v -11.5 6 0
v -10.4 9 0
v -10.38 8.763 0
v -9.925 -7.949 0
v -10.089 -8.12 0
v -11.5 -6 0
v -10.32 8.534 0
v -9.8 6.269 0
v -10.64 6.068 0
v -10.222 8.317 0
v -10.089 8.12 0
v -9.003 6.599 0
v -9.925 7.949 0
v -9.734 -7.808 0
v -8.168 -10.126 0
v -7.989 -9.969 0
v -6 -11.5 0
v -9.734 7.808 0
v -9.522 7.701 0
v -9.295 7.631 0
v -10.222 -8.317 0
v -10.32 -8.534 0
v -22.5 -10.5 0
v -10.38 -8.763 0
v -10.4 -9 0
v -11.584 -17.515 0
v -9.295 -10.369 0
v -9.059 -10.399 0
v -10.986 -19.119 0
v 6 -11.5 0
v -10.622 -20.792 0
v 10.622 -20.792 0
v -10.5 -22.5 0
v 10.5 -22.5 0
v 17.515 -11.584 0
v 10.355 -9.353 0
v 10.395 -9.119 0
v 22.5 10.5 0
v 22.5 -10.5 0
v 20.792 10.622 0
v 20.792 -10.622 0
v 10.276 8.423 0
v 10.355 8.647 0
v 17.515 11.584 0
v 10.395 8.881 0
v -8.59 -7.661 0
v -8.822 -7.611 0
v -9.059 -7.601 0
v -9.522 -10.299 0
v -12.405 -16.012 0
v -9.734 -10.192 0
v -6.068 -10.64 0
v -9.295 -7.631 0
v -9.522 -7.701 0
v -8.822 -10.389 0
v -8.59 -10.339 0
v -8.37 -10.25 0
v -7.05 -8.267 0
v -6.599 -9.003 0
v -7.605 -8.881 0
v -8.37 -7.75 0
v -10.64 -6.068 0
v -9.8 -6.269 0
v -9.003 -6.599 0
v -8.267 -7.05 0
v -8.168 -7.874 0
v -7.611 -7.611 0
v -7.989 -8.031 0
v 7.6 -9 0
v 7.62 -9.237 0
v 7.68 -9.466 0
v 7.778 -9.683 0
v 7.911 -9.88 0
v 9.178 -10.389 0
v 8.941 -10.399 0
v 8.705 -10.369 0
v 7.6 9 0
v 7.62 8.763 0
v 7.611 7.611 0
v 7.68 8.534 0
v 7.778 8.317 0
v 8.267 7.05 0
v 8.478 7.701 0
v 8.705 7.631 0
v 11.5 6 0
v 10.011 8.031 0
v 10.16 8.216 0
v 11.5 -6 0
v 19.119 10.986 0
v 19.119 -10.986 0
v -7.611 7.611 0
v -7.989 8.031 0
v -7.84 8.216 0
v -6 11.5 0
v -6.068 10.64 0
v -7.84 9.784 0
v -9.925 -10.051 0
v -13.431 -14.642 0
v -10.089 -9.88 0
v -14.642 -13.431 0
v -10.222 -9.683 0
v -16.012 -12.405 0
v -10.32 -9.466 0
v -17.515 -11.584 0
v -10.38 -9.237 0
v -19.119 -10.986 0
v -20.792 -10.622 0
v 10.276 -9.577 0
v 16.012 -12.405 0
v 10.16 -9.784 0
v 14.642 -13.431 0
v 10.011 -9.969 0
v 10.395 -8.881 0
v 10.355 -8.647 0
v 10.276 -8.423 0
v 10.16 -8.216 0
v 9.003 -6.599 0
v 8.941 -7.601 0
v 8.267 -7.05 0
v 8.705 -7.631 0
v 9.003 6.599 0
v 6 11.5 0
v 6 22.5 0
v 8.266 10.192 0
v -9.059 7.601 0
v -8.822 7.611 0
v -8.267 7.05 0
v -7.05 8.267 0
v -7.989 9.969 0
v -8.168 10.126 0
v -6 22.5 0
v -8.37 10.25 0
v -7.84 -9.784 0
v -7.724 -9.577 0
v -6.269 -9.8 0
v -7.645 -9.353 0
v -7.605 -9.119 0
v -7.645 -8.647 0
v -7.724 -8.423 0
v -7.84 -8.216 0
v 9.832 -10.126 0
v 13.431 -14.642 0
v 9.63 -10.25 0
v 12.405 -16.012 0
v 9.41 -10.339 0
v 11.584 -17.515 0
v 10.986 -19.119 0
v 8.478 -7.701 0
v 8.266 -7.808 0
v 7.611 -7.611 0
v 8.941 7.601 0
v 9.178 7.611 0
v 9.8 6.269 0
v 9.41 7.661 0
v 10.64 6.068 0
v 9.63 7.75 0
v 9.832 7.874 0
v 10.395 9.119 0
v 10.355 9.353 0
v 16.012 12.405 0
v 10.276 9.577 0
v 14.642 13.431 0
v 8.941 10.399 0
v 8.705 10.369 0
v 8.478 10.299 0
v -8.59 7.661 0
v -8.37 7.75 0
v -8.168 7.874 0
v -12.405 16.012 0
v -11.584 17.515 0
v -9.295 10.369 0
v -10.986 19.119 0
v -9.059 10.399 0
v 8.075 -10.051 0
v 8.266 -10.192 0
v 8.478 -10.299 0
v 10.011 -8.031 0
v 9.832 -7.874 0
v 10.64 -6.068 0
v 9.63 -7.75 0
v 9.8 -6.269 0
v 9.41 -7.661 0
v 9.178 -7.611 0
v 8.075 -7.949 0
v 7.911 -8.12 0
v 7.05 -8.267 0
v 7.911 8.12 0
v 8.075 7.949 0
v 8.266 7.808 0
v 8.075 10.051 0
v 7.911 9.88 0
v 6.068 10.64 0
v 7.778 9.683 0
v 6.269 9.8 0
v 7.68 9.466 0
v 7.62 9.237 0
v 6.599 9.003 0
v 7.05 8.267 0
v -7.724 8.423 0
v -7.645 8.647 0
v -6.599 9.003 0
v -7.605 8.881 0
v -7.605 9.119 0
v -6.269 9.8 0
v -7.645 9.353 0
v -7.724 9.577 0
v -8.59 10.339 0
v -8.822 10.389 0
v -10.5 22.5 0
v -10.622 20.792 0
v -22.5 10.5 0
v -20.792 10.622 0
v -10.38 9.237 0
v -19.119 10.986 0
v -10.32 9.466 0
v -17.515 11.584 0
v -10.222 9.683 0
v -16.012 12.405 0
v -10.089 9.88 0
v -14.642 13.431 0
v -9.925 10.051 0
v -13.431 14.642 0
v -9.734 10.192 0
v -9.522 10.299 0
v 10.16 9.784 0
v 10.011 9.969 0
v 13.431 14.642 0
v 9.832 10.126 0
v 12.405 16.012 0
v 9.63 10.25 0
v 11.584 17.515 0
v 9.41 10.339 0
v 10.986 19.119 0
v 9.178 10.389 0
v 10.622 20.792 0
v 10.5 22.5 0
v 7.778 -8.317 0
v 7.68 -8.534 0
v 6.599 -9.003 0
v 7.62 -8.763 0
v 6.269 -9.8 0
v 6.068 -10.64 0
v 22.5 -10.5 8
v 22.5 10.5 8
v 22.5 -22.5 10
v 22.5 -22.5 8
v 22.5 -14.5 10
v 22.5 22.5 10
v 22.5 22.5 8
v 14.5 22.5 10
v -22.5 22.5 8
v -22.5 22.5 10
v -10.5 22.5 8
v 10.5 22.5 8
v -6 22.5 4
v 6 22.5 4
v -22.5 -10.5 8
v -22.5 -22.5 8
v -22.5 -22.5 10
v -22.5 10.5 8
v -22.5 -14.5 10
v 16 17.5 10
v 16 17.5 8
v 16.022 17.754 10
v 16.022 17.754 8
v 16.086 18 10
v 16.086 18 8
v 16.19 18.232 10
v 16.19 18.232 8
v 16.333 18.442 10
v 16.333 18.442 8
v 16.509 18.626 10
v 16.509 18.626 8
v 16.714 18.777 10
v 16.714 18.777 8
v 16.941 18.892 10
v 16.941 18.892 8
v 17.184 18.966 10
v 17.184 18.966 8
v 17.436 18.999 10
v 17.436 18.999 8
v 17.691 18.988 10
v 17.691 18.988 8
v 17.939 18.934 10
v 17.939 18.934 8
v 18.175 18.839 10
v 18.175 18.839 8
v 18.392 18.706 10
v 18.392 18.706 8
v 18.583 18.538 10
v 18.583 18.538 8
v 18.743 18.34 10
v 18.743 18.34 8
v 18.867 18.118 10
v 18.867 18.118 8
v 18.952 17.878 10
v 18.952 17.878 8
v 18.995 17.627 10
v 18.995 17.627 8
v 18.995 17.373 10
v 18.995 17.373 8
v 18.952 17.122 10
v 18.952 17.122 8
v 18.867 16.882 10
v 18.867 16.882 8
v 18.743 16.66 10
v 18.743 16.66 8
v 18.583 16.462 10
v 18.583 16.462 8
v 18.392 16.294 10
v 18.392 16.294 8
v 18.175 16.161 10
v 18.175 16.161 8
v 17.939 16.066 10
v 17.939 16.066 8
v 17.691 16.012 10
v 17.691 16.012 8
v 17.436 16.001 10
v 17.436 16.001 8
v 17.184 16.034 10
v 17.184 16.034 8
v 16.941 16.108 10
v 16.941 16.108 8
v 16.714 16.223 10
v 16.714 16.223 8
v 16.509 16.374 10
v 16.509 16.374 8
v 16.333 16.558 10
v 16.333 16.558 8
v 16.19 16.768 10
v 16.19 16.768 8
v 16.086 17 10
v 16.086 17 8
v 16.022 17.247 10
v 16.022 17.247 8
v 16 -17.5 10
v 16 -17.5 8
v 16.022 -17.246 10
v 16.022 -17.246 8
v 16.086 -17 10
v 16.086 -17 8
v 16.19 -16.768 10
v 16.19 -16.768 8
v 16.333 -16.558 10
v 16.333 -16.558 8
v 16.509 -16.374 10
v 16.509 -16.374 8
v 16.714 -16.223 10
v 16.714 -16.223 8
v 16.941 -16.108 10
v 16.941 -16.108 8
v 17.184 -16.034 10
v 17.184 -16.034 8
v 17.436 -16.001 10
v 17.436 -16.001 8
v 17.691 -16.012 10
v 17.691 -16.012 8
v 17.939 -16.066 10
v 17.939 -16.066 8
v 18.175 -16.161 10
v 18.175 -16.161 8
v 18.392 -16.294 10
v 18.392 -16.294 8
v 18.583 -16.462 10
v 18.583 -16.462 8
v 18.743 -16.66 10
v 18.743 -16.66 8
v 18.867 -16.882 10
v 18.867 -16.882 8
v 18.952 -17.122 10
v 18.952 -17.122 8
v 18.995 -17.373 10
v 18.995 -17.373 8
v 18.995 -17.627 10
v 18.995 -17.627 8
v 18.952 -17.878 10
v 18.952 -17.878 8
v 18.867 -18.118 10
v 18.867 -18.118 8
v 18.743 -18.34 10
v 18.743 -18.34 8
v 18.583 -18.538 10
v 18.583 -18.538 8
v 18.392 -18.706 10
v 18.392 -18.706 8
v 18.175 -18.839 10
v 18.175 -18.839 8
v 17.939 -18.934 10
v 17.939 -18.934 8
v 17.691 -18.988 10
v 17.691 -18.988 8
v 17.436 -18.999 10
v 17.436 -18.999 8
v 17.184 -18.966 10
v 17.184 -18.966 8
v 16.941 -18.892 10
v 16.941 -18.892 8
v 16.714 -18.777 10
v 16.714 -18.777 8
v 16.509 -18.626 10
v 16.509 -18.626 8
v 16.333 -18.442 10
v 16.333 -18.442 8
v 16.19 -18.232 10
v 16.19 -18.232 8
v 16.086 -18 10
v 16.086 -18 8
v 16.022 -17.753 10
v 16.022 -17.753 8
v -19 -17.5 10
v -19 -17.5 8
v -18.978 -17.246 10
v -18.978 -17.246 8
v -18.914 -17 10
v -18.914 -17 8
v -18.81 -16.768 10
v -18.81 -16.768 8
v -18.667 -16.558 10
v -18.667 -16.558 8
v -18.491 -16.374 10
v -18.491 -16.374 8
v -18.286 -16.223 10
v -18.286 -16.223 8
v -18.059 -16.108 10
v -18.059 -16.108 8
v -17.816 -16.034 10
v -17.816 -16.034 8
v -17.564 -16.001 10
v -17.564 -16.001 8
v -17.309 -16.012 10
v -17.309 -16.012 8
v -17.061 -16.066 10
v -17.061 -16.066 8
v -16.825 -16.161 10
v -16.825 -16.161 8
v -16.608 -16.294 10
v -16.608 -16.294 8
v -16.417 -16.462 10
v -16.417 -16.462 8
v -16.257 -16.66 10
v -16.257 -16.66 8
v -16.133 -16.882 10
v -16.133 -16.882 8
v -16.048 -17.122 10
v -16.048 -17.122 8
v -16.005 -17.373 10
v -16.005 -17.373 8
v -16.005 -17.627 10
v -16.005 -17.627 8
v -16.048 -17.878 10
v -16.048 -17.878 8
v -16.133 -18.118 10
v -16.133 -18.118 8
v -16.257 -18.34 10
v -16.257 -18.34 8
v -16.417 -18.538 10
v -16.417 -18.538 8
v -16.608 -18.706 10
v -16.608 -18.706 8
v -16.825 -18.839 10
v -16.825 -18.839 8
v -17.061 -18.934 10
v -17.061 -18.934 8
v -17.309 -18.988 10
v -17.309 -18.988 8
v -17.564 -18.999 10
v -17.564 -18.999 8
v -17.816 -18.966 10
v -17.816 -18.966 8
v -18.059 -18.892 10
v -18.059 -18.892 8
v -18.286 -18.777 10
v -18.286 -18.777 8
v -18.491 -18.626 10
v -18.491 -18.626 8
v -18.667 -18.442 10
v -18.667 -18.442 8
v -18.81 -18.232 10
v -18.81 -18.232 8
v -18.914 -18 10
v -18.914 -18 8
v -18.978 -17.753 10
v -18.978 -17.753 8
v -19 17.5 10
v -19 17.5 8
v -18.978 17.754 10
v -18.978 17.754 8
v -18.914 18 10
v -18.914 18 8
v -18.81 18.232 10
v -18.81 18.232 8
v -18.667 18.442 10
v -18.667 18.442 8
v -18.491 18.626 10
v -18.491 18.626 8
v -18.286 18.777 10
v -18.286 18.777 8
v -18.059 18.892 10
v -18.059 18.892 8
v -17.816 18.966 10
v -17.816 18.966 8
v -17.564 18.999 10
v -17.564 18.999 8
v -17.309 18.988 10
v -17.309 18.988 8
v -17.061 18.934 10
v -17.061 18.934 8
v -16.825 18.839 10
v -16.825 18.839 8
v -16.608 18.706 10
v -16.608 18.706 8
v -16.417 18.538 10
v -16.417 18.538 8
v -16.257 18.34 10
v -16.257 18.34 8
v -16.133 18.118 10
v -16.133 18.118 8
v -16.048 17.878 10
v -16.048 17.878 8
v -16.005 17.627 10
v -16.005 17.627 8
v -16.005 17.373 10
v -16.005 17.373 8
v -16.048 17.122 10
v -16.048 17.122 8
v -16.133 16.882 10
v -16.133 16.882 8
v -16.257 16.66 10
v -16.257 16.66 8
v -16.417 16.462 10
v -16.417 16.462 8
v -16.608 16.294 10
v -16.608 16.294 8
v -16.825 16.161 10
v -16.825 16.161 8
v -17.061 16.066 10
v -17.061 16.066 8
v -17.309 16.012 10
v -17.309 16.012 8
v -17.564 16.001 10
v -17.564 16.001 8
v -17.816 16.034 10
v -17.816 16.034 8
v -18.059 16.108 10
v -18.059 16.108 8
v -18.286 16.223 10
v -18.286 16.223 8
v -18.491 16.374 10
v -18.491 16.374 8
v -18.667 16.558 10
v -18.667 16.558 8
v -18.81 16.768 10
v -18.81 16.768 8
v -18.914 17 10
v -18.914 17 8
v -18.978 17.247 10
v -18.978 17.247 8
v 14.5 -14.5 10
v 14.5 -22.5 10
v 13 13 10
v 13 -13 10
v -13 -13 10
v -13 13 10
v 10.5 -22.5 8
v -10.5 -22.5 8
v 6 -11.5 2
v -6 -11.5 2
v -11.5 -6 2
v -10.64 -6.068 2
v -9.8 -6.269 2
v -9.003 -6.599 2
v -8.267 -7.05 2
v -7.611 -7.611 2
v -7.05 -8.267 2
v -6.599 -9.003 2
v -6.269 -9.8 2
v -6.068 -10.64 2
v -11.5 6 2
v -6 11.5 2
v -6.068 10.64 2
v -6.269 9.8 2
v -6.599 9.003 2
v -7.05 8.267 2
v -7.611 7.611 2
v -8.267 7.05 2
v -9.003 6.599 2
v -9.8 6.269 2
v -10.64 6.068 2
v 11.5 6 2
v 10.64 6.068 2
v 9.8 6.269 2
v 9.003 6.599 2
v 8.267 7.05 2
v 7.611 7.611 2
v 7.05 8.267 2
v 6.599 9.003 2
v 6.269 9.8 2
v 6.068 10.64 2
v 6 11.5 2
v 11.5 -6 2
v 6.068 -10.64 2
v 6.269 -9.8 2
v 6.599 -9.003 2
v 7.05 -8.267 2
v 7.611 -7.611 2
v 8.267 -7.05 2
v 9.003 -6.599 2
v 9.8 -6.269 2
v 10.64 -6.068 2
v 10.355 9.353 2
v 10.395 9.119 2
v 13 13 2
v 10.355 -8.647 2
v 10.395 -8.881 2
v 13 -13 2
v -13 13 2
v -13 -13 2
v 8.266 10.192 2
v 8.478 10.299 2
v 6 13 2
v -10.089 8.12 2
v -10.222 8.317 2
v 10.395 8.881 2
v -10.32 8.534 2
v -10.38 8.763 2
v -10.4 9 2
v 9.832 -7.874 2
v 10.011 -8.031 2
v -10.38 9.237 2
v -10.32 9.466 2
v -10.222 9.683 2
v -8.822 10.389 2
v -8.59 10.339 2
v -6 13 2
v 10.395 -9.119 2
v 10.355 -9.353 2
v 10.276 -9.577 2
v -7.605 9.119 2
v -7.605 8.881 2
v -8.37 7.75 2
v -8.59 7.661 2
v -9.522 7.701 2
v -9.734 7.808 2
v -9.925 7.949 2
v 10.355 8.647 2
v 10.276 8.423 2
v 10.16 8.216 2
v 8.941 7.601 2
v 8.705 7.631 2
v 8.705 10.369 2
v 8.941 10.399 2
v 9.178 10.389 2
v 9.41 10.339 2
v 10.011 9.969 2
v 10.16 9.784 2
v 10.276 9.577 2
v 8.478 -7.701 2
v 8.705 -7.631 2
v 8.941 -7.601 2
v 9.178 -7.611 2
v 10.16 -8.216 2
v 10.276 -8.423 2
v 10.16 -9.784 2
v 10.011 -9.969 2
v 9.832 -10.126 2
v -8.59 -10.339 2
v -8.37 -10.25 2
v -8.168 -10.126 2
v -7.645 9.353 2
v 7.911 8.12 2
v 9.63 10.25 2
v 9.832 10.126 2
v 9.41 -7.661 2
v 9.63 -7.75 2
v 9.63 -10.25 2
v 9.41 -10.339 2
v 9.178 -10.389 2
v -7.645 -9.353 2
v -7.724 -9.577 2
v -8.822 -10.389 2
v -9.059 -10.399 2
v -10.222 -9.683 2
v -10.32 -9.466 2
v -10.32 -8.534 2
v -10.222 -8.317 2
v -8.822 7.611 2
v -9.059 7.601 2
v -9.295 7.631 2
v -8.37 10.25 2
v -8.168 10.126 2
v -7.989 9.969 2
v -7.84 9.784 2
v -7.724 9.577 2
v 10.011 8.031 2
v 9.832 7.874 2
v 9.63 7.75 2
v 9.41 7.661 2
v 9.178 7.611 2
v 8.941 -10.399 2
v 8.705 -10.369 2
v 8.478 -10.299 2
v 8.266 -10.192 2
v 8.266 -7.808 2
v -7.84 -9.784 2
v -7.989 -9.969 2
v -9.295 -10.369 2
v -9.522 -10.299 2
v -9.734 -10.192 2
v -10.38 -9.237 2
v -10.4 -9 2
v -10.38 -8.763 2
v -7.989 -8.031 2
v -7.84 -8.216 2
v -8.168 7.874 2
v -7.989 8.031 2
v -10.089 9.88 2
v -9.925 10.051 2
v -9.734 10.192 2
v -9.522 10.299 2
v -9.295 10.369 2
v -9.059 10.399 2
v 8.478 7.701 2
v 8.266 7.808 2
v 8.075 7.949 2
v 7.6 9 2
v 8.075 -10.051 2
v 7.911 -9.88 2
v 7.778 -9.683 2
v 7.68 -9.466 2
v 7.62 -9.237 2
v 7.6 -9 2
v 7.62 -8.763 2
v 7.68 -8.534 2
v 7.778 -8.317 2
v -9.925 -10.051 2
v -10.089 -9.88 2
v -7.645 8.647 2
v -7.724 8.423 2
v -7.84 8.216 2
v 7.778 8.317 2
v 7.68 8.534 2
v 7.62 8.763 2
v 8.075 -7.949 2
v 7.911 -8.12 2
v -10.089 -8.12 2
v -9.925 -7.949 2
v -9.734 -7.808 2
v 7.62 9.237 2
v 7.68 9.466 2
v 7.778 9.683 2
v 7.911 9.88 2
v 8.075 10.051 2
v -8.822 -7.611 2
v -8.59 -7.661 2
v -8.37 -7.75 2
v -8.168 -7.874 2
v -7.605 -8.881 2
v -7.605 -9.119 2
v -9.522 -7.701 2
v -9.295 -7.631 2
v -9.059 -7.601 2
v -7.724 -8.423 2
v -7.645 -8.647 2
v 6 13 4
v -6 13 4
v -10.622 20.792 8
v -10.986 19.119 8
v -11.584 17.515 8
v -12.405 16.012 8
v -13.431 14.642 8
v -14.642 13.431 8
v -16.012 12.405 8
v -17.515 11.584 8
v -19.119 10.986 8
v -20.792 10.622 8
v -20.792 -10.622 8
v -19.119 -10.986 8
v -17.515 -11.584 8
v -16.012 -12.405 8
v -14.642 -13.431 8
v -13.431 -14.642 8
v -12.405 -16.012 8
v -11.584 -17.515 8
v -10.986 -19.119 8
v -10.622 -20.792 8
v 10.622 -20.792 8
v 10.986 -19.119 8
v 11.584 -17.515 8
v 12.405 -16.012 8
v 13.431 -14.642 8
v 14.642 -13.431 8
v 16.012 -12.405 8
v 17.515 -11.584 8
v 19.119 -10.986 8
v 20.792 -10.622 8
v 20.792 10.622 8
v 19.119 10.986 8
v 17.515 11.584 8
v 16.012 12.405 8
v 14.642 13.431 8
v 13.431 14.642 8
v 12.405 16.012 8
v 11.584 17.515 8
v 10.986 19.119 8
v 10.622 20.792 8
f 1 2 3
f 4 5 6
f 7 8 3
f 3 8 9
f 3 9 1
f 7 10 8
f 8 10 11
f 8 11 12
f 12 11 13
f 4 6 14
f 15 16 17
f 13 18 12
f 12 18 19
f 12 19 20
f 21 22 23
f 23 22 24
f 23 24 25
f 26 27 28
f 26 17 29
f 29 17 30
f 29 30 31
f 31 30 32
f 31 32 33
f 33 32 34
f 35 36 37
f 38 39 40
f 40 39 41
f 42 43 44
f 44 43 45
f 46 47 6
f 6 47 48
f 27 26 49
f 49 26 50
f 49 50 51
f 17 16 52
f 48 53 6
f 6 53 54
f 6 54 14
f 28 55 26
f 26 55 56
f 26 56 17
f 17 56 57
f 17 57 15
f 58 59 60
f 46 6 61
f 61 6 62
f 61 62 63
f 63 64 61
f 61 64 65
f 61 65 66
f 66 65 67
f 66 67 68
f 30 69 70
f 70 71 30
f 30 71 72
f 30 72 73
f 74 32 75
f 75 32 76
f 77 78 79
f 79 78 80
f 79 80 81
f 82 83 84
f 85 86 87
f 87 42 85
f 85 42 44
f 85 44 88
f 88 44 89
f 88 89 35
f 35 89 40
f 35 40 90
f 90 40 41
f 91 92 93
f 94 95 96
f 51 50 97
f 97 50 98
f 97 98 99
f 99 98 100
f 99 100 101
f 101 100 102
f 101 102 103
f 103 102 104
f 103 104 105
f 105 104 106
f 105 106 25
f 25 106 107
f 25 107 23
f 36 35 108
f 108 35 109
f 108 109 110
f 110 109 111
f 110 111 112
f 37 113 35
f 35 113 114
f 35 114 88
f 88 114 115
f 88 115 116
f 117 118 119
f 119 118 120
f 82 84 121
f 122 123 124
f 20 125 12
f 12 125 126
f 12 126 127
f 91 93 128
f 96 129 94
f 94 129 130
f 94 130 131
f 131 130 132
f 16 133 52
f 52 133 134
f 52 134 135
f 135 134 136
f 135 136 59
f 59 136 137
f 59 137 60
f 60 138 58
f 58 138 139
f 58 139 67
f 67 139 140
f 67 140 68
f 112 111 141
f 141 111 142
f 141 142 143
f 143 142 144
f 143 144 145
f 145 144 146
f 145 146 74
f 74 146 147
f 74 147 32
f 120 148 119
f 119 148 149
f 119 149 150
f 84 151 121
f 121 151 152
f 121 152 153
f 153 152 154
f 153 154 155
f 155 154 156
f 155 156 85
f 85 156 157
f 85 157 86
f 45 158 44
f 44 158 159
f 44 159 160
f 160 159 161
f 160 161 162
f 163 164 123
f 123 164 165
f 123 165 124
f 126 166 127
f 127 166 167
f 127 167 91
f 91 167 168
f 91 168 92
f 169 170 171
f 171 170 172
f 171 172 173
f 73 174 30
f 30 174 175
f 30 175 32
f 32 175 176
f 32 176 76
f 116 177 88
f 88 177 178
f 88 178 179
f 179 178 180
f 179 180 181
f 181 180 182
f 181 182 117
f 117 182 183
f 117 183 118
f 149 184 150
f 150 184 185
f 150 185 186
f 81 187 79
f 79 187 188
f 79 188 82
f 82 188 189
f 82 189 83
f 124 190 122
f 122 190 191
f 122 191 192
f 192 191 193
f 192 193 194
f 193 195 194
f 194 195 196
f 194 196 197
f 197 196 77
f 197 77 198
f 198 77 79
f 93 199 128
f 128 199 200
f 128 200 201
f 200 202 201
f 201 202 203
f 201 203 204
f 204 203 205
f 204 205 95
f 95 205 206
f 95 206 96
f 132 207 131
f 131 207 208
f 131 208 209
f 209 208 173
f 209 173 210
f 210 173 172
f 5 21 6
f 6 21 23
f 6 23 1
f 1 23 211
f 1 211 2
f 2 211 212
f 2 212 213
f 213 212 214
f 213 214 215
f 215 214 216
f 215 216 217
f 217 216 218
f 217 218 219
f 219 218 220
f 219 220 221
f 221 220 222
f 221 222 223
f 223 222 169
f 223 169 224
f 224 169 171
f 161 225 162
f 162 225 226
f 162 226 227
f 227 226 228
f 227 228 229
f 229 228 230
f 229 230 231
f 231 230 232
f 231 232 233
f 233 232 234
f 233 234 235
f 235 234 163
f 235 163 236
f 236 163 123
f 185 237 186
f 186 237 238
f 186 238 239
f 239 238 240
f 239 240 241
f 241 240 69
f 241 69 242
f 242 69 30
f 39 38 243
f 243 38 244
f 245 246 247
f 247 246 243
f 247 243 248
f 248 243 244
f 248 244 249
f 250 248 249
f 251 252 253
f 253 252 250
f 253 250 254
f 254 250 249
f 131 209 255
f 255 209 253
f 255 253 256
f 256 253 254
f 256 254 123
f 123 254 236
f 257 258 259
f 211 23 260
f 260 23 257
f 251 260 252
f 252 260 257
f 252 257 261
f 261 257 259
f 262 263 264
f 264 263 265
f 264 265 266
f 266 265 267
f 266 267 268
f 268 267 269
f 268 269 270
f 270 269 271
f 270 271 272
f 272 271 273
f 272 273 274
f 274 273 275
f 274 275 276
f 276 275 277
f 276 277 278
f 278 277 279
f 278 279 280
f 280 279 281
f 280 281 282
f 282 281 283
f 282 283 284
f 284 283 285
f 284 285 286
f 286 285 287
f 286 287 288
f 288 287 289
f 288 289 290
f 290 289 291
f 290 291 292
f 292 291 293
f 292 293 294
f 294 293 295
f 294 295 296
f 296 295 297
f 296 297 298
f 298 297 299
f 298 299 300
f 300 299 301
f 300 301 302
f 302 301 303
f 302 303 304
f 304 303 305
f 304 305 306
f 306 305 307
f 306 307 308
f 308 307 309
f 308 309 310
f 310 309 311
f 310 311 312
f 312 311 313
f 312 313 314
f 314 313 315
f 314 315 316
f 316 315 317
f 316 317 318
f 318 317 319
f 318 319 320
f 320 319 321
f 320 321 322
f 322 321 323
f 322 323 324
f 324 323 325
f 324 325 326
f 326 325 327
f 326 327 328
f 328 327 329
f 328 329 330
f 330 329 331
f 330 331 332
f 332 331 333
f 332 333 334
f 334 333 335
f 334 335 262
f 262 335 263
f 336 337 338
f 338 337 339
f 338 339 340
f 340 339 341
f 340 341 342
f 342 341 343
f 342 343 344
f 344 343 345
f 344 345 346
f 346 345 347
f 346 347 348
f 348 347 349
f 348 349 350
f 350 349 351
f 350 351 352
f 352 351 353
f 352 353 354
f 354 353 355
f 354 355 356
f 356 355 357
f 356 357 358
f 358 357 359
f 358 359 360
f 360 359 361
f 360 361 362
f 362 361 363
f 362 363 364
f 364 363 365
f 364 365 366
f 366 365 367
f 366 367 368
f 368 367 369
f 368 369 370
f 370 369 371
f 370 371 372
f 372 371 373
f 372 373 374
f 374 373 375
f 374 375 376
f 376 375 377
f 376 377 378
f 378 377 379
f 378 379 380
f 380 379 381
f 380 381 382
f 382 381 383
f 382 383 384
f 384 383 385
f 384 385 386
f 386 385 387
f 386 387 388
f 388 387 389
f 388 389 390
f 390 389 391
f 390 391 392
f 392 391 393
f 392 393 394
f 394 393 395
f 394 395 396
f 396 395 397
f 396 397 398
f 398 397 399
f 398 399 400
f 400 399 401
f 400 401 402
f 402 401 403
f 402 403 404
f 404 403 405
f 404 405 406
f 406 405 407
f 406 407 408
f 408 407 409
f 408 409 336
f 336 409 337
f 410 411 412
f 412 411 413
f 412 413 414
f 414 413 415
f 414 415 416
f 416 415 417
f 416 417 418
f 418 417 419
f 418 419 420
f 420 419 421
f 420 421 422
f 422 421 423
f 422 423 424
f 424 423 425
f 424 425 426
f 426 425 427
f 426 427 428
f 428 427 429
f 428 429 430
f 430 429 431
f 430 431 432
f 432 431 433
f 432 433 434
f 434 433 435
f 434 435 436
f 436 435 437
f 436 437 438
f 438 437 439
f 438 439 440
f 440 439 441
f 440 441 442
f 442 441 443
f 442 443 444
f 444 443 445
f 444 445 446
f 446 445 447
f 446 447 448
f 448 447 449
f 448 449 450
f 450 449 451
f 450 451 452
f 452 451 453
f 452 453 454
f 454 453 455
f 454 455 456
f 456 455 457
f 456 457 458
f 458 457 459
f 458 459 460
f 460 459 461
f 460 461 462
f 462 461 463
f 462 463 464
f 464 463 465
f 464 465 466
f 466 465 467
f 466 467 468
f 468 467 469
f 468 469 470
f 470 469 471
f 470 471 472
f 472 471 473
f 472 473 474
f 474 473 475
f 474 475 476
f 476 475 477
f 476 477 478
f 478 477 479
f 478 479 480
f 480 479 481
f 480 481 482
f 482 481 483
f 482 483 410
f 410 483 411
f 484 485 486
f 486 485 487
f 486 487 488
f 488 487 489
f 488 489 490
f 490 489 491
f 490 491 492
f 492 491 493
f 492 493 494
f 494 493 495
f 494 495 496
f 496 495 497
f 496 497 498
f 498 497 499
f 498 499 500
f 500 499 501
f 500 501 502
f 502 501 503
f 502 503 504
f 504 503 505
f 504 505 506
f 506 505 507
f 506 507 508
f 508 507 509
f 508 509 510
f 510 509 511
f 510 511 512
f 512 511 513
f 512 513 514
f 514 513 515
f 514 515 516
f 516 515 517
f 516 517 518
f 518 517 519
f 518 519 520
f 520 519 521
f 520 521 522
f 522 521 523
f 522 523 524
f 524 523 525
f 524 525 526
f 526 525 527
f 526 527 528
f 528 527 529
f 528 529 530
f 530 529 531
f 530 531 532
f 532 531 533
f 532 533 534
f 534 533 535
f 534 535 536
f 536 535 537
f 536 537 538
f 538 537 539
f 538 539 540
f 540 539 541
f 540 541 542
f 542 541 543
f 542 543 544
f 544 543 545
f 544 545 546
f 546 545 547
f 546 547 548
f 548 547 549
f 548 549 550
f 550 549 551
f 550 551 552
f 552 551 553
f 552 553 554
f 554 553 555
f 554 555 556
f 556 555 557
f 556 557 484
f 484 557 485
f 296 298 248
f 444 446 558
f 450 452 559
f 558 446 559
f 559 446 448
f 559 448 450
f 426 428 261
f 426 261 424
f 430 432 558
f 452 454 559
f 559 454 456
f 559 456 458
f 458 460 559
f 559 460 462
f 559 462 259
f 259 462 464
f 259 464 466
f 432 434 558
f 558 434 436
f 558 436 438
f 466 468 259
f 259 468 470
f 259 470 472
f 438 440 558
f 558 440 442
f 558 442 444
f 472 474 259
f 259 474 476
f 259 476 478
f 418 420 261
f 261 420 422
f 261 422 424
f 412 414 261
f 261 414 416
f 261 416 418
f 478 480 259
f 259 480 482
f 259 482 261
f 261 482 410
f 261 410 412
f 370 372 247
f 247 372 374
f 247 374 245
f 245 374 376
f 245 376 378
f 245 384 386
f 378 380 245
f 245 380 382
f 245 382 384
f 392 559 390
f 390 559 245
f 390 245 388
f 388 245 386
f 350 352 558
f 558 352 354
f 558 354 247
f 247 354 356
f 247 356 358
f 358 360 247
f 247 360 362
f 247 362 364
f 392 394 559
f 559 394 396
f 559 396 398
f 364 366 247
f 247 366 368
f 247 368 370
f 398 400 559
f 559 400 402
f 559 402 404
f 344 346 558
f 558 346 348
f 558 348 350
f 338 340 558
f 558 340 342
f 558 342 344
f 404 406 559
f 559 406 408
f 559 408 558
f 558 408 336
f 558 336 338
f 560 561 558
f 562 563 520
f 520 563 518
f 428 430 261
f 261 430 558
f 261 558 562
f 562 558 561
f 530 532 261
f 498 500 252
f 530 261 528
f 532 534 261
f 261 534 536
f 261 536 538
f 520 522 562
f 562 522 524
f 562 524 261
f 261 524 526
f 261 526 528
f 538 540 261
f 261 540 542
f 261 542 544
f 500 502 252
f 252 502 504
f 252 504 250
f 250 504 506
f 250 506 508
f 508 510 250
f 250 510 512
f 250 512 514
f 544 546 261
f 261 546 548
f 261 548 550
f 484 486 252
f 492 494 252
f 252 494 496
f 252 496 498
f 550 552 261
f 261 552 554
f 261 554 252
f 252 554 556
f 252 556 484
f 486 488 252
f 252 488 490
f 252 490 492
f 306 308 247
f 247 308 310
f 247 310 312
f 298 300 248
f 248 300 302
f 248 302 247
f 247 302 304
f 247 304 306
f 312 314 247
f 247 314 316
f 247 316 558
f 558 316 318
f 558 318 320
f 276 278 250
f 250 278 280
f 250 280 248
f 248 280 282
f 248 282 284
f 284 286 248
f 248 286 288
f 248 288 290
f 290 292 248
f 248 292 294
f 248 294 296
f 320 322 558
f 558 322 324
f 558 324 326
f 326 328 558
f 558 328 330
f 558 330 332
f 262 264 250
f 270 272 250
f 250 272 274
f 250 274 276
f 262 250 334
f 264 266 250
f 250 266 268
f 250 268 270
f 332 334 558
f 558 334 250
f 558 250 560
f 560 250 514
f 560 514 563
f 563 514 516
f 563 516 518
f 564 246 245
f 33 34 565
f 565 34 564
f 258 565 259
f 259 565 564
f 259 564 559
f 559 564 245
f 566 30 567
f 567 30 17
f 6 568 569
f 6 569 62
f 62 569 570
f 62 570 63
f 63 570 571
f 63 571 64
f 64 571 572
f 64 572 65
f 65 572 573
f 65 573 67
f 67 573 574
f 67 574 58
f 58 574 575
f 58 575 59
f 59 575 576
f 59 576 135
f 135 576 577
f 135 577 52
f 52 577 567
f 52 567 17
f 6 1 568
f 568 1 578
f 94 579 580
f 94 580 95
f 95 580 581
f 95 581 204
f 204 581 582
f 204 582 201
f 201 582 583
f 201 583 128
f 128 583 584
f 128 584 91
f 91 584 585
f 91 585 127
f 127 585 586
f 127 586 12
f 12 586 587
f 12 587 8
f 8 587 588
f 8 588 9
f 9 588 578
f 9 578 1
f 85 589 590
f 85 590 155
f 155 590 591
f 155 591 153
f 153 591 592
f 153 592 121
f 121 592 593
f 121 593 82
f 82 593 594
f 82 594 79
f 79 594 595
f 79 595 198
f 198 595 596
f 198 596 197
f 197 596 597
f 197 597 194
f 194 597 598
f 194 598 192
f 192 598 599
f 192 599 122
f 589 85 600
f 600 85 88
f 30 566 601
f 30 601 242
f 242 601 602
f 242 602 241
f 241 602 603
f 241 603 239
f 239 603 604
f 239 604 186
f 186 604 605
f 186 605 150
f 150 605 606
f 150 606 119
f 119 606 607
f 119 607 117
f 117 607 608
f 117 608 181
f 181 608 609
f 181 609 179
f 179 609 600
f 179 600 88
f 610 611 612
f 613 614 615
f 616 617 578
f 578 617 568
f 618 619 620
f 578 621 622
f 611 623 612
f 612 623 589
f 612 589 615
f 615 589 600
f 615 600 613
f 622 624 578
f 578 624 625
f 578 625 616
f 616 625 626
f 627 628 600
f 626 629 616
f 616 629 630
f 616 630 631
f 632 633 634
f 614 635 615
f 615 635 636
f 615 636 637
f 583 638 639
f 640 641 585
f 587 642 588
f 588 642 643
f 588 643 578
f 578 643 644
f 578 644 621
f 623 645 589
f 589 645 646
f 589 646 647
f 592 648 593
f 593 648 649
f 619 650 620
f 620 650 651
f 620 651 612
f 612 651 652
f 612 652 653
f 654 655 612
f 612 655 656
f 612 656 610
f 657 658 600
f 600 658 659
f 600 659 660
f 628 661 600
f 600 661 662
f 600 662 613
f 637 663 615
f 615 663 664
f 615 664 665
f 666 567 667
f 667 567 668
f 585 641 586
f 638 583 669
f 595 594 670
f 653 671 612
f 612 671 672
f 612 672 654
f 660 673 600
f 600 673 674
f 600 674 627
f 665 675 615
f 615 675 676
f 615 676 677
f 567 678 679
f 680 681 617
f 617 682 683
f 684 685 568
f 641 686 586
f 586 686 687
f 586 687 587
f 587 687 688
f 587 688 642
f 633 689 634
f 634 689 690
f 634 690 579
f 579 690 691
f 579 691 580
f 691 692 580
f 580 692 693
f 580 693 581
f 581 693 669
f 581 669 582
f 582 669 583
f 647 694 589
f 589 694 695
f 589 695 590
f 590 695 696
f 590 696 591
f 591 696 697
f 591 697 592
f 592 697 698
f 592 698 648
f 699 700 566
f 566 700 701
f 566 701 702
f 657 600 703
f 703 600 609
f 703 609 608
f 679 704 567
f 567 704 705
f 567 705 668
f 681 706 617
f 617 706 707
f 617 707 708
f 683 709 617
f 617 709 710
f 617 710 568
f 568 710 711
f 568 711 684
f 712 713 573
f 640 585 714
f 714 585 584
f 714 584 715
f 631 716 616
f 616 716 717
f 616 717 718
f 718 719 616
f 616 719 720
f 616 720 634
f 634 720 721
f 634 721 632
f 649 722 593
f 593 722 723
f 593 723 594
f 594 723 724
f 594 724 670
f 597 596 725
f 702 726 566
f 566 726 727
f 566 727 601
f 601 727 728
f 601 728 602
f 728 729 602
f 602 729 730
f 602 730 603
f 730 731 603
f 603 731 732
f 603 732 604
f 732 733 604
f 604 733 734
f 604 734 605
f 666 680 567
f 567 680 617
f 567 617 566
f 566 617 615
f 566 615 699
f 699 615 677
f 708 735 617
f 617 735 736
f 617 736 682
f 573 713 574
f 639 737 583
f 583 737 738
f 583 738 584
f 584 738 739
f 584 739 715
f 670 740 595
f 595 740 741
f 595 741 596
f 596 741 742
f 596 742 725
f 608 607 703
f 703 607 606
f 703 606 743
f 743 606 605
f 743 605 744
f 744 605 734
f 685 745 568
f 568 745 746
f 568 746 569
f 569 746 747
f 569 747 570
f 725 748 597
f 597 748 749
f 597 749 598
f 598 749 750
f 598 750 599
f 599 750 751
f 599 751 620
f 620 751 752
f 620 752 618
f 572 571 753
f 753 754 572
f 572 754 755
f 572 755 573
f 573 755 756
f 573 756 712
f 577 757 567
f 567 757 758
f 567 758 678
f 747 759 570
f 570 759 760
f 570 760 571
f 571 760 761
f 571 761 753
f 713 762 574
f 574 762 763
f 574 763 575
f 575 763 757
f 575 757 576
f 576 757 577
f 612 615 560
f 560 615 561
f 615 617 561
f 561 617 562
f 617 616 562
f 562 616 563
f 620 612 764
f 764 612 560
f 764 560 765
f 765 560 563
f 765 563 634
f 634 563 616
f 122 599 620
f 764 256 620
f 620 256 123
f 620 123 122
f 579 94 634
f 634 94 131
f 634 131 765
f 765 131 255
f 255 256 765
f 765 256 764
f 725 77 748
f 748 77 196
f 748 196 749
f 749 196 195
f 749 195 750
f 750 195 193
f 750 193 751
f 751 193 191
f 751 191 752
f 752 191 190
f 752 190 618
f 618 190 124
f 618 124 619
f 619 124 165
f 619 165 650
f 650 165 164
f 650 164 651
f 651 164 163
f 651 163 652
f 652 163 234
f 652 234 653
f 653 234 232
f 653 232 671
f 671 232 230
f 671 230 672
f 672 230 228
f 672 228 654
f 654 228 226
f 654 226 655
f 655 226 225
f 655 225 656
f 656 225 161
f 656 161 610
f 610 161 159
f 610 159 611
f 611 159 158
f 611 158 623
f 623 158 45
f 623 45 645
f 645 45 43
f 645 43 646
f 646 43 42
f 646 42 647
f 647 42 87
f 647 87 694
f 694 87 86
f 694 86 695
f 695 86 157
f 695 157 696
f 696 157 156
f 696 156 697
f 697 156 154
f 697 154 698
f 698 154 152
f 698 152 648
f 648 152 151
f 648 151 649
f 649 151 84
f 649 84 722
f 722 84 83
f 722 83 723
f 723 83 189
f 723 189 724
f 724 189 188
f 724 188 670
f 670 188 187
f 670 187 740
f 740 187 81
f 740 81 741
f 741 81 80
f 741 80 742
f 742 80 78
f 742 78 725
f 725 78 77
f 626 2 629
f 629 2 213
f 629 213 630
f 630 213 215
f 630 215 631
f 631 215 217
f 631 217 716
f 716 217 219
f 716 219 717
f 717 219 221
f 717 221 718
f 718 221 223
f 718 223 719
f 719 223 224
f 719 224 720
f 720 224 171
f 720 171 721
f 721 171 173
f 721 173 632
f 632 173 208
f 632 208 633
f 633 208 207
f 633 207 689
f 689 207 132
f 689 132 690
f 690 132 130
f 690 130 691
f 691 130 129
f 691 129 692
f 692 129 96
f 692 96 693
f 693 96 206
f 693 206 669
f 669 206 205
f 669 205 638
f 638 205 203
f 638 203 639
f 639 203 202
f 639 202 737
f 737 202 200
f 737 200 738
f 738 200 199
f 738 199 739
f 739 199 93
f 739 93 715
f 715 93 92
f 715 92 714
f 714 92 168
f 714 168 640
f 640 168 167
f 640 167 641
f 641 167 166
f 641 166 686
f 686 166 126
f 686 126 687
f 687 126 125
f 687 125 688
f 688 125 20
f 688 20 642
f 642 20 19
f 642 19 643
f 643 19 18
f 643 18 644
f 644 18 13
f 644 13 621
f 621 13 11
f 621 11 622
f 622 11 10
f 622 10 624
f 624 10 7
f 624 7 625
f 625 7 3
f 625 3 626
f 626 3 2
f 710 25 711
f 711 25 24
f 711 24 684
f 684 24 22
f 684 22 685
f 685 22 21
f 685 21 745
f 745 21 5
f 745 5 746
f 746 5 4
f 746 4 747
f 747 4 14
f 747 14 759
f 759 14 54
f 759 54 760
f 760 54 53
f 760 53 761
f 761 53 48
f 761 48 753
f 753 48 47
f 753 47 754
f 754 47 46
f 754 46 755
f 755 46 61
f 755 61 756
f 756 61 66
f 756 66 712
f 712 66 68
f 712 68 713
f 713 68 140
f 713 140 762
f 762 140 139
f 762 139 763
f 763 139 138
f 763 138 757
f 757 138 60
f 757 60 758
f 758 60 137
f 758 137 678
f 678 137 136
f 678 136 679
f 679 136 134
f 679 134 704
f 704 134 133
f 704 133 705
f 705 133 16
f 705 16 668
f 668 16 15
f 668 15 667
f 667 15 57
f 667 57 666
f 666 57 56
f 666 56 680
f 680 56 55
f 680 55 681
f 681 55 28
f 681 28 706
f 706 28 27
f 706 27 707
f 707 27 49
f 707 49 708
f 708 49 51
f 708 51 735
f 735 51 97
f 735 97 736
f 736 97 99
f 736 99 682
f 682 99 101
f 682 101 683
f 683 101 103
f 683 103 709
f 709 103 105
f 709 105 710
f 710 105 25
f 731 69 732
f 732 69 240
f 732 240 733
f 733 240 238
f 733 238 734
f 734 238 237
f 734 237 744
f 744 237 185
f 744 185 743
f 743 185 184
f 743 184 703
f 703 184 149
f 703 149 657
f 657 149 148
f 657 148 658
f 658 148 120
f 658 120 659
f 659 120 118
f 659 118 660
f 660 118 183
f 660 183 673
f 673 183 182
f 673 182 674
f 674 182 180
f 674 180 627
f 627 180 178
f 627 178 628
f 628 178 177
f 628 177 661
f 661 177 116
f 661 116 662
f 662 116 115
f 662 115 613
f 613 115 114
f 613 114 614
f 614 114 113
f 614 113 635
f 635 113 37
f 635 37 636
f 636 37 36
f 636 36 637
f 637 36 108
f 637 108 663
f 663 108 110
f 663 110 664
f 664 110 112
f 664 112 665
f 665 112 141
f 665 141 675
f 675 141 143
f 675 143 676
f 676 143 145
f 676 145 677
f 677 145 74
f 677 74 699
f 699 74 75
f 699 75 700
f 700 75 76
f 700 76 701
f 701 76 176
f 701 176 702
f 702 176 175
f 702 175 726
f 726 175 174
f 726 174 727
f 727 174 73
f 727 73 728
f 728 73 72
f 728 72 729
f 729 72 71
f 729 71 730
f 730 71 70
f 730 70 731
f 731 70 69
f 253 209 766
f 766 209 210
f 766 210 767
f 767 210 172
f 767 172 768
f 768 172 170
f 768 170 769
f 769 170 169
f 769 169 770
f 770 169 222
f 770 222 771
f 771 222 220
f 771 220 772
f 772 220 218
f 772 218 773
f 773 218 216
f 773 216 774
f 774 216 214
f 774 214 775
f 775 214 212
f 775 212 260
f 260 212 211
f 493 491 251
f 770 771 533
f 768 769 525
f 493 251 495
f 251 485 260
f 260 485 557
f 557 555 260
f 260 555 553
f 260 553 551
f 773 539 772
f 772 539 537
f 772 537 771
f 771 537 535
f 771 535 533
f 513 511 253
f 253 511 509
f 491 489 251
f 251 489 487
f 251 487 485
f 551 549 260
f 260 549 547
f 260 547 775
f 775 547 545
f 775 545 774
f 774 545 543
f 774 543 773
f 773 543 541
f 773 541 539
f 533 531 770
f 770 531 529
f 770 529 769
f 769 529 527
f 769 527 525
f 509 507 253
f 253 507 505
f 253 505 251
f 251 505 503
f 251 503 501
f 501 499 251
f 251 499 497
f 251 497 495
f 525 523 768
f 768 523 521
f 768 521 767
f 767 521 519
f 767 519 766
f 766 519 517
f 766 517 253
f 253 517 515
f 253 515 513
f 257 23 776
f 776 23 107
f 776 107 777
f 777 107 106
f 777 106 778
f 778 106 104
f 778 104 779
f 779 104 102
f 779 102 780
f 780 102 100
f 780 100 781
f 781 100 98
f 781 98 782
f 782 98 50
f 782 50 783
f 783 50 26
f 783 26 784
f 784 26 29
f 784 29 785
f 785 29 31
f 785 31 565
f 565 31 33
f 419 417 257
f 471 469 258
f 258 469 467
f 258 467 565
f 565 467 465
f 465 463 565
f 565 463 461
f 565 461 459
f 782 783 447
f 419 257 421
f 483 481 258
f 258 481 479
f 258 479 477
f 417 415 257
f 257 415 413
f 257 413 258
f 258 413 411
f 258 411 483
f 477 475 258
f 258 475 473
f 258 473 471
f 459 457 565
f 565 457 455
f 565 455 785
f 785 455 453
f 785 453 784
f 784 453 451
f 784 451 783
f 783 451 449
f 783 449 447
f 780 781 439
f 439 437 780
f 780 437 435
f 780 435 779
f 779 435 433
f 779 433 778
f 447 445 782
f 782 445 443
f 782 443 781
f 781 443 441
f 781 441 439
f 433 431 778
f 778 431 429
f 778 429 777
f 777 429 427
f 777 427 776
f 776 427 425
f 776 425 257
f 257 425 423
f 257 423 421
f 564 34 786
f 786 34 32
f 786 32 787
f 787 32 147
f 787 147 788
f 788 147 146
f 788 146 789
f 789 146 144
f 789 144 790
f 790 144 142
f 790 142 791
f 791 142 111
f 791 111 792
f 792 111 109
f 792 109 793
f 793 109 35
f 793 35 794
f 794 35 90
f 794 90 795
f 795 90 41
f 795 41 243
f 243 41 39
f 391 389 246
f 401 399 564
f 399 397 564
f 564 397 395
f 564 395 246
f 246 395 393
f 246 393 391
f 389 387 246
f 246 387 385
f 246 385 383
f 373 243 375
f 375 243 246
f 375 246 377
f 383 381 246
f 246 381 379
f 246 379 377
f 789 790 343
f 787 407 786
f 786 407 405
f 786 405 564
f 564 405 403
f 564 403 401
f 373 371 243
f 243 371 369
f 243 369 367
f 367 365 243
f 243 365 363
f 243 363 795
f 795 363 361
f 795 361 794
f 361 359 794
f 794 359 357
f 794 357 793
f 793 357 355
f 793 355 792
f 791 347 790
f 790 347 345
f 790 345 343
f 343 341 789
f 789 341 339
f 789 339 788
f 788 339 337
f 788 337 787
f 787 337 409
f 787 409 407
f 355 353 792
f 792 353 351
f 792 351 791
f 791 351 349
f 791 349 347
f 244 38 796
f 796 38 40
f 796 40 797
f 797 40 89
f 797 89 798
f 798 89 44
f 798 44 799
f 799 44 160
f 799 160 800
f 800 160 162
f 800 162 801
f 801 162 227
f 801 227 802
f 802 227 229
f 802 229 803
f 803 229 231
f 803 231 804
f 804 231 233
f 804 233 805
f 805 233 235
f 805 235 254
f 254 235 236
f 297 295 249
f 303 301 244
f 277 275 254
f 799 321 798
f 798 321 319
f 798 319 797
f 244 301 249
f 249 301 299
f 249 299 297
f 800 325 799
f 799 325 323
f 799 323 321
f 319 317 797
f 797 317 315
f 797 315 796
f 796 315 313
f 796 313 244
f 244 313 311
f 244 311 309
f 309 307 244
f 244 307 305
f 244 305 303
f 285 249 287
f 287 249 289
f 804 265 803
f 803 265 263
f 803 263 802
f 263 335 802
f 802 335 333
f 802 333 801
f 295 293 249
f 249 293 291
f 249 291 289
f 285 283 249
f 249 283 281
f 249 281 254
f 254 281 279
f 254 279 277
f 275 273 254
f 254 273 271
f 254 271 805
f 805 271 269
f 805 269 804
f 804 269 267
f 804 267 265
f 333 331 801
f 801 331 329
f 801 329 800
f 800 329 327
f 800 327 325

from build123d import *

# Parameters (mm, degrees)
CROQUIS1_W              = 45
CROQUIS1_H              = 45
SALIENTE_EXTRUIR1_DEPTH = 10
CORTAR_EXTRUIR1_DEPTH   = 10
CROQUIS3_W              = 26
CROQUIS3_H              = 26
CORTAR_EXTRUIR5_DEPTH   = 8
CROQUIS4_W              = 12
CROQUIS4_H              = 11
CORTAR_EXTRUIR6_DEPTH   = 4
CORTAR_EXTRUIR7_DEPTH   = 4
CROQUIS6_R              = 1.5
CORTAR_EXTRUIR8_DEPTH   = 24
CROQUIS7_R              = 1.5
CORTAR_EXTRUIR9_DEPTH   = 8


with BuildPart() as part:
    # Croquis1 → Saliente-Extruir1 (new body)
    with BuildSketch(Plane.XY):
        Rectangle(CROQUIS1_W, CROQUIS1_H)
    extrude(amount=SALIENTE_EXTRUIR1_DEPTH)

    # Croquis2 → Cortar-Extruir1 (cut)
    with BuildSketch(Plane.XY.offset(10)):
        with BuildLine():
            ThreePointArc((-11.5, -6), (-7.610912703, -7.610912703), (-6, -11.5))
            Line((-6, -11.5), (6, -11.5))
            ThreePointArc((6, -11.5), (7.610912703, -7.610912703), (11.5, -6))
            Line((11.5, -6), (11.5, 6))
            ThreePointArc((11.5, 6), (7.610912703, 7.610912703), (6, 11.5))
            Line((6, 11.5), (-6, 11.5))
            ThreePointArc((-6, 11.5), (-7.610912703, 7.610912703), (-11.5, 6))
            Line((-11.5, 6), (-11.5, -6))
        make_face()
    extrude(amount=-CORTAR_EXTRUIR1_DEPTH, mode=Mode.SUBTRACT)

    # Croquis3 → Cortar-Extruir5 (cut)
    with BuildSketch(Plane.XY.offset(10)):
        Rectangle(CROQUIS3_W, CROQUIS3_H)
    extrude(amount=-CORTAR_EXTRUIR5_DEPTH, mode=Mode.SUBTRACT)

    # Croquis4 → Cortar-Extruir6 (cut)
    with BuildSketch(Plane(origin=(0, 0, 0), x_dir=(-1, 0, 0), z_dir=(0, 0, -1))):
        with Locations((0, 17)):
            Rectangle(CROQUIS4_W, CROQUIS4_H)
    extrude(amount=-CORTAR_EXTRUIR6_DEPTH, mode=Mode.SUBTRACT)

    # Croquis5 → Cortar-Extruir7 (cut)
    with BuildSketch(Plane(origin=(0, 0, 0), x_dir=(-1, 0, 0), z_dir=(0, 0, -1))):
        with BuildLine():
            ThreePointArc((-7.6, 9), (-9.989949494, 9.989949494), (-9, 7.6))
            Line((-9, 7.6), (-9, 9))
            Line((-9, 9), (-7.6, 9))
        make_face()
        with BuildLine():
            Line((-9, 9), (-9, 7.6))
            ThreePointArc((-9, 7.6), (-8.010050506, 8.010050506), (-7.6, 9))
            Line((-7.6, 9), (-9, 9))
        make_face()
        with BuildLine():
            ThreePointArc((7.6, 9), (8.010050506, 8.010050506), (9, 7.6))
            Line((9, 7.6), (9, 9))
            Line((9, 9), (7.6, 9))
        make_face()
        with BuildLine():
            Line((9, 9), (9, 7.6))
            ThreePointArc((9, 7.6), (9.989949494, 8.010050506), (10.4, 9))
            ThreePointArc((10.4, 9), (9, 10.4), (7.6, 9))
            Line((7.6, 9), (9, 9))
        make_face()
        with BuildLine():
            ThreePointArc((9, -7.6), (8.010050506, -8.010050506), (7.6, -9))
            Line((7.6, -9), (9, -9))
            Line((9, -9), (9, -7.6))
        make_face()
        with BuildLine():
            Line((9, -9), (7.6, -9))
            ThreePointArc((7.6, -9), (9, -10.4), (10.4, -9))
            ThreePointArc((10.4, -9), (9.989949494, -8.010050506), (9, -7.6))
            Line((9, -7.6), (9, -9))
        make_face()
        with BuildLine():
            Line((-9, -7.6), (-9, -9))
            Line((-9, -9), (-7.6, -9))
            ThreePointArc((-7.6, -9), (-8.010050506, -8.010050506), (-9, -7.6))
        make_face()
        with BuildLine():
            Line((-7.6, -9), (-9, -9))
            Line((-9, -9), (-9, -7.6))
            ThreePointArc((-9, -7.6), (-9.989949494, -9.989949494), (-7.6, -9))
        make_face()
    extrude(amount=-CORTAR_EXTRUIR7_DEPTH, mode=Mode.SUBTRACT)

    # Croquis6 → Cortar-Extruir8 (cut)
    with BuildSketch(Plane(origin=(0, 0, 0), x_dir=(-1, 0, 0), z_dir=(0, 0, -1))):
        with Locations((-17.5, 17.5)):
            Circle(CROQUIS6_R)
        with Locations((-17.5, -17.5)):
            Circle(CROQUIS6_R)
        with Locations((17.5, -17.5)):
            Circle(CROQUIS6_R)
        with Locations((17.5, 17.5)):
            Circle(CROQUIS6_R)
    extrude(amount=-CORTAR_EXTRUIR8_DEPTH, mode=Mode.SUBTRACT)

    # Croquis7 → Cortar-Extruir9 (cut)
    # profile 1 of 4: a face of its own
    with BuildSketch(Plane(origin=(0, 0, 0), x_dir=(-1, 0, 0), z_dir=(0, 0, -1))):
        with BuildLine():
            Line((-22.5, 22.5), (-22.5, 10.5))
            ThreePointArc((-22.5, 10.5), (-14.014718626, 14.014718626), (-10.5, 22.5))
            Line((-10.5, 22.5), (-22.5, 22.5))
        make_face()
        with Locations((-17.5, 17.5)):
            Circle(CROQUIS7_R, mode=Mode.SUBTRACT)
    # profile 2 of 4: a face of its own
    with BuildSketch(Plane(origin=(0, 0, 0), x_dir=(-1, 0, 0), z_dir=(0, 0, -1))):
        with BuildLine():
            ThreePointArc((10.5, 22.5), (14.014718626, 14.014718626), (22.5, 10.5))
            Line((22.5, 10.5), (22.5, 22.5))
            Line((22.5, 22.5), (10.5, 22.5))
        make_face()
        with Locations((17.5, 17.5)):
            Circle(CROQUIS7_R, mode=Mode.SUBTRACT)
    # profile 3 of 4: a face of its own
    with BuildSketch(Plane(origin=(0, 0, 0), x_dir=(-1, 0, 0), z_dir=(0, 0, -1))):
        with BuildLine():
            Line((10.5, -22.5), (22.5, -22.5))
            Line((22.5, -22.5), (22.5, -10.5))
            ThreePointArc((22.5, -10.5), (14.014718626, -14.014718626), (10.5, -22.5))
        make_face()
        with Locations((17.5, -17.5)):
            Circle(CROQUIS7_R, mode=Mode.SUBTRACT)
    # profile 4 of 4: a face of its own
    with BuildSketch(Plane(origin=(0, 0, 0), x_dir=(-1, 0, 0), z_dir=(0, 0, -1))):
        with BuildLine():
            Line((-22.5, -22.5), (-10.5, -22.5))
            ThreePointArc((-10.5, -22.5), (-14.014718626, -14.014718626), (-22.5, -10.5))
            Line((-22.5, -10.5), (-22.5, -22.5))
        make_face()
        with Locations((-17.5, -17.5)):
            Circle(CROQUIS7_R, mode=Mode.SUBTRACT)
    extrude(amount=-CORTAR_EXTRUIR9_DEPTH, mode=Mode.SUBTRACT)


solid = part.part
